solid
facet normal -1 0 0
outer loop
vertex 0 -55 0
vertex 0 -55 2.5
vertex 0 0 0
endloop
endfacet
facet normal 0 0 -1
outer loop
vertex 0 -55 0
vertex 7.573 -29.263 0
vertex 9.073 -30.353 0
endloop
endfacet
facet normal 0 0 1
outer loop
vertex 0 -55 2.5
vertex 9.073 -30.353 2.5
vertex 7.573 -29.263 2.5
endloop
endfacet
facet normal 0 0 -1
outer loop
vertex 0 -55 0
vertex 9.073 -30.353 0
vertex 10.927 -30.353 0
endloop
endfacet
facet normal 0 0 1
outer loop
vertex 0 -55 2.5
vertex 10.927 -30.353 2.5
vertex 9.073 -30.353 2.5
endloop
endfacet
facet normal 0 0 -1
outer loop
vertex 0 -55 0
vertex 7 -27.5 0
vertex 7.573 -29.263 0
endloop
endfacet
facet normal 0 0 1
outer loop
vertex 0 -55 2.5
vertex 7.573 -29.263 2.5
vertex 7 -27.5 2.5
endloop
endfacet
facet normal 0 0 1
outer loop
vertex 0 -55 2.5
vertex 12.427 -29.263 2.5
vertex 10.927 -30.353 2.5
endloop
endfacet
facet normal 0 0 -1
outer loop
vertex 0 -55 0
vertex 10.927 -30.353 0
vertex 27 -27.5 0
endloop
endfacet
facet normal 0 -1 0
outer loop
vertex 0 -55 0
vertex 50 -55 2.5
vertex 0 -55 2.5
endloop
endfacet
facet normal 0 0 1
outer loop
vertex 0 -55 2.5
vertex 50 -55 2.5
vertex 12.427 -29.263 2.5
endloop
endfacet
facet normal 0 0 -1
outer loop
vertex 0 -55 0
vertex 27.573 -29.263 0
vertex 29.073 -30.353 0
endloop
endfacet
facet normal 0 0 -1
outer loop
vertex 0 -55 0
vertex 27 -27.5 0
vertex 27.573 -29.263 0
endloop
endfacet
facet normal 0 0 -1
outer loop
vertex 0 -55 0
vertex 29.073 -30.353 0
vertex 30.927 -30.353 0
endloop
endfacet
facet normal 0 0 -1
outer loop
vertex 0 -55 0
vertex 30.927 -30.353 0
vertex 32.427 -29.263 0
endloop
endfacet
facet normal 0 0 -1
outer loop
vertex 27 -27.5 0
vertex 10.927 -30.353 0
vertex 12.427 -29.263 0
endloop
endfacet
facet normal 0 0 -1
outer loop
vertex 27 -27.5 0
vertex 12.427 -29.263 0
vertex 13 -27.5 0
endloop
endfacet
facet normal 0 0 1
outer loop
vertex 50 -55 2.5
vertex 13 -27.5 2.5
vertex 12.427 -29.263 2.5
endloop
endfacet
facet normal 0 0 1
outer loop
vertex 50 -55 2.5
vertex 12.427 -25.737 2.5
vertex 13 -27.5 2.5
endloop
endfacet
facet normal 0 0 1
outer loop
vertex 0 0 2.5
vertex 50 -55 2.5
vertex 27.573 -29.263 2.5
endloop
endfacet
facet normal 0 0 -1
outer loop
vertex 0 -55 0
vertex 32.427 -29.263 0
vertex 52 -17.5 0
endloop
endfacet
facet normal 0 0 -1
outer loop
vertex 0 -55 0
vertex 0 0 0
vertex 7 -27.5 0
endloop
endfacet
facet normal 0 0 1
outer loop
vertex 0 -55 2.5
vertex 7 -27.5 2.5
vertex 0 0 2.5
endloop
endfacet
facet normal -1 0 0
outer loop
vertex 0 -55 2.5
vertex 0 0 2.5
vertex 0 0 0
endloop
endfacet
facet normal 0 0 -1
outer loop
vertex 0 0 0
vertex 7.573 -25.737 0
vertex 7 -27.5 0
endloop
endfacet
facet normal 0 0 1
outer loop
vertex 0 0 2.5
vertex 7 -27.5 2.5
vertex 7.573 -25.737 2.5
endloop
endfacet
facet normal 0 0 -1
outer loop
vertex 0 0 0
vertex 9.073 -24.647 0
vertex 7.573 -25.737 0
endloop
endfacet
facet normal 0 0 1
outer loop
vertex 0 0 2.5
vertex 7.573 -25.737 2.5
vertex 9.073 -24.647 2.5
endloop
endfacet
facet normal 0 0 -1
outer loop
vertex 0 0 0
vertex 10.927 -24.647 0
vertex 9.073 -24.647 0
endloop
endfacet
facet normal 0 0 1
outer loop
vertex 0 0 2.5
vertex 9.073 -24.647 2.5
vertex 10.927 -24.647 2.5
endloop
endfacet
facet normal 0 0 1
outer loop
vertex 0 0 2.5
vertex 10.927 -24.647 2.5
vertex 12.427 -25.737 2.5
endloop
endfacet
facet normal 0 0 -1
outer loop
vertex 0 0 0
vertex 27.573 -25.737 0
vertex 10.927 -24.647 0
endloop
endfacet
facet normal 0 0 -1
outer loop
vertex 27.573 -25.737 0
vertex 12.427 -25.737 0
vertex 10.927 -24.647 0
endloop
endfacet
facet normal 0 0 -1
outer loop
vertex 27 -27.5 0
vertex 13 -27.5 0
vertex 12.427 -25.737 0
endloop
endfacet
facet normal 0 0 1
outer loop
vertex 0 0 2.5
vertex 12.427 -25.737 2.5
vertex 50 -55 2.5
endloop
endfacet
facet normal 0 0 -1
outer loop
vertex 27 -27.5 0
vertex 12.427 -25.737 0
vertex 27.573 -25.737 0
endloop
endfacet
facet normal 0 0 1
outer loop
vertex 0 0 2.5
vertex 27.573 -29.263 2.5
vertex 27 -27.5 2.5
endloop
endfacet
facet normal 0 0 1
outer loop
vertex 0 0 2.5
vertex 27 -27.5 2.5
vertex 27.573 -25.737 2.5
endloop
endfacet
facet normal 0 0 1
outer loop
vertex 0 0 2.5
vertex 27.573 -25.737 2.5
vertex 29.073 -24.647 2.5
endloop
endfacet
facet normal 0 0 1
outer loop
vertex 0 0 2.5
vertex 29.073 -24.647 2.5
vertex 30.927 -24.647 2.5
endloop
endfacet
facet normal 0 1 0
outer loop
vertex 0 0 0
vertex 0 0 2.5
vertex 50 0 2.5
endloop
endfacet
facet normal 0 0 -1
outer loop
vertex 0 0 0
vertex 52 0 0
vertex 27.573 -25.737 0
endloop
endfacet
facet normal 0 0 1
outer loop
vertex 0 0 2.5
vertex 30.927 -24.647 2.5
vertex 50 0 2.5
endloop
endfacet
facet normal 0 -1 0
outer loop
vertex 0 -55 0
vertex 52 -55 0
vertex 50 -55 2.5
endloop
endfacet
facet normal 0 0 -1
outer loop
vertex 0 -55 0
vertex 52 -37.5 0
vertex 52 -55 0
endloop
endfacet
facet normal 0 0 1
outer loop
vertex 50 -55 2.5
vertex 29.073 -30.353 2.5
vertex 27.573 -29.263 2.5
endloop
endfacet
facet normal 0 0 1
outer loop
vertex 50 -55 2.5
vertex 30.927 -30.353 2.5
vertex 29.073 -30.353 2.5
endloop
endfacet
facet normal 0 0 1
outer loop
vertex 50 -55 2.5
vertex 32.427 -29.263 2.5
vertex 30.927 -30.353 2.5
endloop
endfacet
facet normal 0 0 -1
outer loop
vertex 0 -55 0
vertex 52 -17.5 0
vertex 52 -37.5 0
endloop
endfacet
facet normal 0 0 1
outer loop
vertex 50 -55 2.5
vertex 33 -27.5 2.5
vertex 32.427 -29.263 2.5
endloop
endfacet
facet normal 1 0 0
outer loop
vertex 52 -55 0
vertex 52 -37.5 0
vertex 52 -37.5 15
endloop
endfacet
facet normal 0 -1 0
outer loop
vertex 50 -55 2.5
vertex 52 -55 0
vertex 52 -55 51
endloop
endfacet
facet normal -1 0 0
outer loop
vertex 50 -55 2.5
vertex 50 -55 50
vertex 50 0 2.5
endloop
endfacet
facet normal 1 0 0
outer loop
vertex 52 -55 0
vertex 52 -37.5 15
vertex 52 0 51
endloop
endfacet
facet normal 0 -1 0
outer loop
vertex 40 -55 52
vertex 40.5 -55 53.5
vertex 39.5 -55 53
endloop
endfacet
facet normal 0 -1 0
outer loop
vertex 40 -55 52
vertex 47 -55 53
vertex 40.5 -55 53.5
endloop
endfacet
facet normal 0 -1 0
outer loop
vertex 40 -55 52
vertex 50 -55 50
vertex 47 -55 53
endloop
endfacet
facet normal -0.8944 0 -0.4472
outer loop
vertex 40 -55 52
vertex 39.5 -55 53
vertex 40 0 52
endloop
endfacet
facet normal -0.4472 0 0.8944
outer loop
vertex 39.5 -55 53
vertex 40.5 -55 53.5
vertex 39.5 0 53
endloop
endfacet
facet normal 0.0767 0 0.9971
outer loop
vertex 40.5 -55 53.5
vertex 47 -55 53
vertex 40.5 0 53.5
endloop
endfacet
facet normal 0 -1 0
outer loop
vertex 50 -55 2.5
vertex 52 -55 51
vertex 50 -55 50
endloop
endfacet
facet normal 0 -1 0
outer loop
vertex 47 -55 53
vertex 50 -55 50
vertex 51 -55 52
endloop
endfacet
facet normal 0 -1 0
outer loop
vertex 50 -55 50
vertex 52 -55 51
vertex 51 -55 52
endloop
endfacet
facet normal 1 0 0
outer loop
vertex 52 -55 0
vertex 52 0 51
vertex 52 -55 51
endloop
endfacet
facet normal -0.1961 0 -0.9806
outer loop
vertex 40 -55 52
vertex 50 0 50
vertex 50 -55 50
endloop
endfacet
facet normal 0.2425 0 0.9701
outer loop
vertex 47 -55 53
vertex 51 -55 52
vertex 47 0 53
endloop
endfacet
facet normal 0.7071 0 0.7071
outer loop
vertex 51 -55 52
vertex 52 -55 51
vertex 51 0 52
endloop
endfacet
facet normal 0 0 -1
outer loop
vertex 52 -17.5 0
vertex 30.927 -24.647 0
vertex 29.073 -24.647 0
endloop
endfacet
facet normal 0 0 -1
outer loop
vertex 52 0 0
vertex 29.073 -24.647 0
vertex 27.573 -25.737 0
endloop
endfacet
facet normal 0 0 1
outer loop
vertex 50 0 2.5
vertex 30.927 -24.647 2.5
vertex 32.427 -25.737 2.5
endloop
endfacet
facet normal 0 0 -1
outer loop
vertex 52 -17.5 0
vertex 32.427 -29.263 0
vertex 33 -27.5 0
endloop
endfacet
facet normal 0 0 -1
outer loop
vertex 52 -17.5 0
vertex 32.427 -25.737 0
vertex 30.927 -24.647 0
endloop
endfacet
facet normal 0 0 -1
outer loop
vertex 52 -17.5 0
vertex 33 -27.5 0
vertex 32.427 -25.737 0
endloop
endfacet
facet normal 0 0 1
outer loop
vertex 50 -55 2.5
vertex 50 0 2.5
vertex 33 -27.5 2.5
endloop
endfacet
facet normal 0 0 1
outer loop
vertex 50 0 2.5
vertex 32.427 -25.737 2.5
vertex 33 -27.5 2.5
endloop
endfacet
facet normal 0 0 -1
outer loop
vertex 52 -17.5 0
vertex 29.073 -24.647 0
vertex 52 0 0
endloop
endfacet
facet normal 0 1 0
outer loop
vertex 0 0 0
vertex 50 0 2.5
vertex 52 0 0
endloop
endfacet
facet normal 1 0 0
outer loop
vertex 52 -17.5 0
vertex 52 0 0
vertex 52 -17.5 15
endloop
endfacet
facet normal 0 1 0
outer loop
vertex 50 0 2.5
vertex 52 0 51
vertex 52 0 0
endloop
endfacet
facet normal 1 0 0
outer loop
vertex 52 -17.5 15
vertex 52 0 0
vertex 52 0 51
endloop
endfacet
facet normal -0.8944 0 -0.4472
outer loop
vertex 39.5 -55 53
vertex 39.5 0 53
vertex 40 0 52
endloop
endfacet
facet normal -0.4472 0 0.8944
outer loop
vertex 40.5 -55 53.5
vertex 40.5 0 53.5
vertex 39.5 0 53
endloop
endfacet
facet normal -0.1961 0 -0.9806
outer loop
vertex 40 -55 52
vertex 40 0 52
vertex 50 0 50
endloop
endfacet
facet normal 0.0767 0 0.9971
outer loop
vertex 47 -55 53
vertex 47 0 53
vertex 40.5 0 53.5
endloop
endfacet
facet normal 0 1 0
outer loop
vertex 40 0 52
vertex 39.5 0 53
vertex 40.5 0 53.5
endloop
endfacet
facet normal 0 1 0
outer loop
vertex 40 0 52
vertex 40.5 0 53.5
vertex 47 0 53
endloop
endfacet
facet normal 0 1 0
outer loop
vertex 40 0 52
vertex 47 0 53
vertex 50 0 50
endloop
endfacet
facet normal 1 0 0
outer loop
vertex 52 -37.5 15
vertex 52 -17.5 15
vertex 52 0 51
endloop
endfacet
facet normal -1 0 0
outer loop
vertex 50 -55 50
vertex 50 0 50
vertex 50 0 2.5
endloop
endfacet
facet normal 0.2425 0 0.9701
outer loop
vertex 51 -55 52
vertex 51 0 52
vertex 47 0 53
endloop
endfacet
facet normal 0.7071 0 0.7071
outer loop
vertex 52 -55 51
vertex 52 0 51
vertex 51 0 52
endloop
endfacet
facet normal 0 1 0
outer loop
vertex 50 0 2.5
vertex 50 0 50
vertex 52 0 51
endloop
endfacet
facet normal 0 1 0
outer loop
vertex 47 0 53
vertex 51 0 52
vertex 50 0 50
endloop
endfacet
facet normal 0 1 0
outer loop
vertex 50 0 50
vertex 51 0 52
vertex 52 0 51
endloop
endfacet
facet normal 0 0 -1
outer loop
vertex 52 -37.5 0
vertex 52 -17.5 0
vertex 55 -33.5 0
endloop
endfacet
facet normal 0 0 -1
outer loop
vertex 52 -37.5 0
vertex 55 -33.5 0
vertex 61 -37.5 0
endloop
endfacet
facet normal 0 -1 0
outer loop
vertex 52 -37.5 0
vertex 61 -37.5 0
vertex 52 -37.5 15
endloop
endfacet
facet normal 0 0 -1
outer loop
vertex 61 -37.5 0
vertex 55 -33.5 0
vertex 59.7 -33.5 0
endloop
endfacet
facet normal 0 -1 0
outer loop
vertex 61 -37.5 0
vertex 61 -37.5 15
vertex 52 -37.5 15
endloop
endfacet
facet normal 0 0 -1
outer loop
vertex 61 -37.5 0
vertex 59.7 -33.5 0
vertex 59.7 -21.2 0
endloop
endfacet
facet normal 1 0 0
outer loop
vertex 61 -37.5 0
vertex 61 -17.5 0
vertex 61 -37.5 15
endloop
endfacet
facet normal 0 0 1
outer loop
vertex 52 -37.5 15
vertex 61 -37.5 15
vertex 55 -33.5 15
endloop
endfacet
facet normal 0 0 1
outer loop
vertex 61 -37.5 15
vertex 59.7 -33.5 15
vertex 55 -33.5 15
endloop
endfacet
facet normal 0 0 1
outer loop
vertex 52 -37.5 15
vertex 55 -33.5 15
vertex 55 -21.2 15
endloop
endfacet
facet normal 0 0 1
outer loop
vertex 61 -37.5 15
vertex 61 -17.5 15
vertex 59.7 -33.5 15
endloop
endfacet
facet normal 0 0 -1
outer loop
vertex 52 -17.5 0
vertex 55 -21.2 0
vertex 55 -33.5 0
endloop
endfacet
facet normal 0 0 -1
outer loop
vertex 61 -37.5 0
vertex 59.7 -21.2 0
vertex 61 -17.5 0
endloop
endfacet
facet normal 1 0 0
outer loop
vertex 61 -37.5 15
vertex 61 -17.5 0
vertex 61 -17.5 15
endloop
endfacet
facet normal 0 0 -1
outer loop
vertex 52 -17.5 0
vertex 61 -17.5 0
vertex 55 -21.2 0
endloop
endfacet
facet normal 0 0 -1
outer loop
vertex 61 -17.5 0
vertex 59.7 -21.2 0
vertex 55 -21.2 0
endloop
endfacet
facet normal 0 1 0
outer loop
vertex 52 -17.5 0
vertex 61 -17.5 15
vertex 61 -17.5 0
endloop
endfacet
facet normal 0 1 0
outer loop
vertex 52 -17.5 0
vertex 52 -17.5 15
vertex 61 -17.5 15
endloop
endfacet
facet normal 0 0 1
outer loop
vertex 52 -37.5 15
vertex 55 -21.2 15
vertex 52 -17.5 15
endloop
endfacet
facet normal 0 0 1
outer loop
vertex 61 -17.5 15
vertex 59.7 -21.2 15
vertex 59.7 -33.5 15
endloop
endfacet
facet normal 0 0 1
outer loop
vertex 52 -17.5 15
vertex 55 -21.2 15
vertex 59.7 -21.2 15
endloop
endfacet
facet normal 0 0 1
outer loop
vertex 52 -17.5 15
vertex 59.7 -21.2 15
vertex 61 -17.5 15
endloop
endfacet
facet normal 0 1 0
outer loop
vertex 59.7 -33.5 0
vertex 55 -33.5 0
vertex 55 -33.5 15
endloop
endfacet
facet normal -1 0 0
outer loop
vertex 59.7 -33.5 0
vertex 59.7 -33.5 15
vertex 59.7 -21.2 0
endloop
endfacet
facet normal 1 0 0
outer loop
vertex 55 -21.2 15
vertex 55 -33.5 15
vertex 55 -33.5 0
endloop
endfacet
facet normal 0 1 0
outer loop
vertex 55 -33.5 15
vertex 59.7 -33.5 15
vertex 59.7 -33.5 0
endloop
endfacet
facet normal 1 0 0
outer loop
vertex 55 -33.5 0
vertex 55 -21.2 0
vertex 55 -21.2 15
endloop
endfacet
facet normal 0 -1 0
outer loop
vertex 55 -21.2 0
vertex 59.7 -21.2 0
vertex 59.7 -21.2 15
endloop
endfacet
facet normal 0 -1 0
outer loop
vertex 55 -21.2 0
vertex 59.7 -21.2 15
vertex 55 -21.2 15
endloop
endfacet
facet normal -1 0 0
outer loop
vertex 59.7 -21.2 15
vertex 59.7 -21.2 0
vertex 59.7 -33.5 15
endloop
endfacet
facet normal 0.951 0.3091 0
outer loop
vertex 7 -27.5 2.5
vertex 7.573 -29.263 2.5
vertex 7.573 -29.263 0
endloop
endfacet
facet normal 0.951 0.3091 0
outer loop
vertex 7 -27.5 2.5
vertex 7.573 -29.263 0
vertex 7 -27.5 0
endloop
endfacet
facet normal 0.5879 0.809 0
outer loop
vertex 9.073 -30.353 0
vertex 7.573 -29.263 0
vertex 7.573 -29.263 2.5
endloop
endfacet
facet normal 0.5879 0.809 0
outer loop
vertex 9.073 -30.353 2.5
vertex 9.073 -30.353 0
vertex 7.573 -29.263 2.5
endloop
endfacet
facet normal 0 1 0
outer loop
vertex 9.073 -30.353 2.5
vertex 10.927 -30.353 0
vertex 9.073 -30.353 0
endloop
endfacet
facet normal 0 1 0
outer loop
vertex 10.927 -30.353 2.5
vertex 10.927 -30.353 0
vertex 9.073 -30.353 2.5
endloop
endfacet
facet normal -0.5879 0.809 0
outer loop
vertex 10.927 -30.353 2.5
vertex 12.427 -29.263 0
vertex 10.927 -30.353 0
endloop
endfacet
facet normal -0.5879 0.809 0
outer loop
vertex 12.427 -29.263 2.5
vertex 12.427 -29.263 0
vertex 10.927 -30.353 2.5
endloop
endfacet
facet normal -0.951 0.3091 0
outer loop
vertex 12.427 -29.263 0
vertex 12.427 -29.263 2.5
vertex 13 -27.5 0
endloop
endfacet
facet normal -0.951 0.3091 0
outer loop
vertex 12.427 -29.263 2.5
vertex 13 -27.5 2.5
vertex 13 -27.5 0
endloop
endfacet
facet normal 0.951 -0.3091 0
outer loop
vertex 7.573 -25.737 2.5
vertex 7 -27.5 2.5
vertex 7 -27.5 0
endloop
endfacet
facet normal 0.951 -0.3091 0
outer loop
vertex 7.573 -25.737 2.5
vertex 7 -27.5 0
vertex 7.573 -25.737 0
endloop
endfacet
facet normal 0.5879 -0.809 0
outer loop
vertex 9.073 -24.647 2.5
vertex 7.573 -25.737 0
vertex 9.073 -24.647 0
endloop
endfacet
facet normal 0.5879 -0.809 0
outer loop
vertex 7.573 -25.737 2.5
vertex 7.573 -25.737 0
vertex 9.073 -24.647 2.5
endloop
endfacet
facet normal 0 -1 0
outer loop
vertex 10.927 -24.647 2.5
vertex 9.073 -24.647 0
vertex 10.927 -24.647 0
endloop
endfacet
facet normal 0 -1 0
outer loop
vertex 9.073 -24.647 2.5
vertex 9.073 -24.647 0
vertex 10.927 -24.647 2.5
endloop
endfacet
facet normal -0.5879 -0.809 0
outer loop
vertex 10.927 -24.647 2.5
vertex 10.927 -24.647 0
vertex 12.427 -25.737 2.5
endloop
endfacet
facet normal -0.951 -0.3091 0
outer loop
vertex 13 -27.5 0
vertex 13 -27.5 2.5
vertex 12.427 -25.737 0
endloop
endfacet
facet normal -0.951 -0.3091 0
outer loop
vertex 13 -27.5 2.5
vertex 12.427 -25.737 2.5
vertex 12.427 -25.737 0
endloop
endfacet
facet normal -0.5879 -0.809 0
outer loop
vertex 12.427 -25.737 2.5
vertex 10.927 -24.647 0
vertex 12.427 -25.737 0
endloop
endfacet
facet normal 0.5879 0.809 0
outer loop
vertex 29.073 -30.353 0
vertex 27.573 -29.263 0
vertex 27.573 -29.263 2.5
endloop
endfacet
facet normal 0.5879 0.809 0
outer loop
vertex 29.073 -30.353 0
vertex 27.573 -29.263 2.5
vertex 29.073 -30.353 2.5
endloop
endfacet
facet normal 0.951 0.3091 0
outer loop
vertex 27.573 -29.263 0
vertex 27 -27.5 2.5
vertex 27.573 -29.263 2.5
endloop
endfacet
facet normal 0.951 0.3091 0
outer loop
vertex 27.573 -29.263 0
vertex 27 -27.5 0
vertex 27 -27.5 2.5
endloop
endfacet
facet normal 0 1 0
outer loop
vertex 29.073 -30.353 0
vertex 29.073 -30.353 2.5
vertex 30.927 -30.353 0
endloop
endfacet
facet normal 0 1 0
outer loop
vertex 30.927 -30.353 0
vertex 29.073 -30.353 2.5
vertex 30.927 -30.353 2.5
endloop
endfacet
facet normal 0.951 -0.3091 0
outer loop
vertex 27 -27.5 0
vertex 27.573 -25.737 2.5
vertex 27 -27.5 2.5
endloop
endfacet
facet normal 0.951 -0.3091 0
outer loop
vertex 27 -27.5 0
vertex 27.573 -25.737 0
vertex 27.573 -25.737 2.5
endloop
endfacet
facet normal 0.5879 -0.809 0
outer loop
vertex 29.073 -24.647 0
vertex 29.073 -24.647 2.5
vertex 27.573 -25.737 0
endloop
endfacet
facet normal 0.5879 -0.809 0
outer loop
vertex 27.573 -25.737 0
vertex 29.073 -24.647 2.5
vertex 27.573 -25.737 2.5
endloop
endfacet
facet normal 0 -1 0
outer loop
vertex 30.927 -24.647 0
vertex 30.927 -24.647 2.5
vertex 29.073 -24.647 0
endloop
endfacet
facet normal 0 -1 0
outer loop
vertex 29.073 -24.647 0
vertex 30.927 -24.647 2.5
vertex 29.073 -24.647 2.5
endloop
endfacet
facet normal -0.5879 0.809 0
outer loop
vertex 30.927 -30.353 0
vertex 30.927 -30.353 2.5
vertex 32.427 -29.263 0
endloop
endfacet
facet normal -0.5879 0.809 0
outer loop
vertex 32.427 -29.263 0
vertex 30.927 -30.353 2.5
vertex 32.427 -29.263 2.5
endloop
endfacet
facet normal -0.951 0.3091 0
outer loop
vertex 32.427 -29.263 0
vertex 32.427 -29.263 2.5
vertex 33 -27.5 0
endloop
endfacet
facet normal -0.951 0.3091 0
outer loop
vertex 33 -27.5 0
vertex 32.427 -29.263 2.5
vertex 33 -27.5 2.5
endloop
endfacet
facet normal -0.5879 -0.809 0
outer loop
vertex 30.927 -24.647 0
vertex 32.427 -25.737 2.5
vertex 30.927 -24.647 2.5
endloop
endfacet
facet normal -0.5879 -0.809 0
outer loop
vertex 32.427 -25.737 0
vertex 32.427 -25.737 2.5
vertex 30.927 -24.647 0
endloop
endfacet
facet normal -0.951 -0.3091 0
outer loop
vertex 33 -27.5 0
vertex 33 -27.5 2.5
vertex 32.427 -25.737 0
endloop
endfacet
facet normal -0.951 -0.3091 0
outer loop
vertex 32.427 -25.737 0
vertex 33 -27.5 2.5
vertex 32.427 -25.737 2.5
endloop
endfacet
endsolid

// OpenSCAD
difference() {
    union() {
        rotate([90,0,0])
        linear_extrude(55)
            polygon([[0,0],[0,2.5],[50,2.5],[50,50],[40,52],[39.5,53],[40.5,53.5],[47,53],[51,52],[52,51],[52,0]]);    
        translate([51,-37.5,0])
        linear_extrude(15)
            square([10,20]);

  
    }

    translate([55,-33.5,-2])
    linear_extrude(20)
        square([4.7,12.3]);

    translate([10,-27.5,-1])
    cylinder(r=3,h=4);

    translate([30,-27.5,-1])
    cylinder(r=3,h=4);  
    
    
}
